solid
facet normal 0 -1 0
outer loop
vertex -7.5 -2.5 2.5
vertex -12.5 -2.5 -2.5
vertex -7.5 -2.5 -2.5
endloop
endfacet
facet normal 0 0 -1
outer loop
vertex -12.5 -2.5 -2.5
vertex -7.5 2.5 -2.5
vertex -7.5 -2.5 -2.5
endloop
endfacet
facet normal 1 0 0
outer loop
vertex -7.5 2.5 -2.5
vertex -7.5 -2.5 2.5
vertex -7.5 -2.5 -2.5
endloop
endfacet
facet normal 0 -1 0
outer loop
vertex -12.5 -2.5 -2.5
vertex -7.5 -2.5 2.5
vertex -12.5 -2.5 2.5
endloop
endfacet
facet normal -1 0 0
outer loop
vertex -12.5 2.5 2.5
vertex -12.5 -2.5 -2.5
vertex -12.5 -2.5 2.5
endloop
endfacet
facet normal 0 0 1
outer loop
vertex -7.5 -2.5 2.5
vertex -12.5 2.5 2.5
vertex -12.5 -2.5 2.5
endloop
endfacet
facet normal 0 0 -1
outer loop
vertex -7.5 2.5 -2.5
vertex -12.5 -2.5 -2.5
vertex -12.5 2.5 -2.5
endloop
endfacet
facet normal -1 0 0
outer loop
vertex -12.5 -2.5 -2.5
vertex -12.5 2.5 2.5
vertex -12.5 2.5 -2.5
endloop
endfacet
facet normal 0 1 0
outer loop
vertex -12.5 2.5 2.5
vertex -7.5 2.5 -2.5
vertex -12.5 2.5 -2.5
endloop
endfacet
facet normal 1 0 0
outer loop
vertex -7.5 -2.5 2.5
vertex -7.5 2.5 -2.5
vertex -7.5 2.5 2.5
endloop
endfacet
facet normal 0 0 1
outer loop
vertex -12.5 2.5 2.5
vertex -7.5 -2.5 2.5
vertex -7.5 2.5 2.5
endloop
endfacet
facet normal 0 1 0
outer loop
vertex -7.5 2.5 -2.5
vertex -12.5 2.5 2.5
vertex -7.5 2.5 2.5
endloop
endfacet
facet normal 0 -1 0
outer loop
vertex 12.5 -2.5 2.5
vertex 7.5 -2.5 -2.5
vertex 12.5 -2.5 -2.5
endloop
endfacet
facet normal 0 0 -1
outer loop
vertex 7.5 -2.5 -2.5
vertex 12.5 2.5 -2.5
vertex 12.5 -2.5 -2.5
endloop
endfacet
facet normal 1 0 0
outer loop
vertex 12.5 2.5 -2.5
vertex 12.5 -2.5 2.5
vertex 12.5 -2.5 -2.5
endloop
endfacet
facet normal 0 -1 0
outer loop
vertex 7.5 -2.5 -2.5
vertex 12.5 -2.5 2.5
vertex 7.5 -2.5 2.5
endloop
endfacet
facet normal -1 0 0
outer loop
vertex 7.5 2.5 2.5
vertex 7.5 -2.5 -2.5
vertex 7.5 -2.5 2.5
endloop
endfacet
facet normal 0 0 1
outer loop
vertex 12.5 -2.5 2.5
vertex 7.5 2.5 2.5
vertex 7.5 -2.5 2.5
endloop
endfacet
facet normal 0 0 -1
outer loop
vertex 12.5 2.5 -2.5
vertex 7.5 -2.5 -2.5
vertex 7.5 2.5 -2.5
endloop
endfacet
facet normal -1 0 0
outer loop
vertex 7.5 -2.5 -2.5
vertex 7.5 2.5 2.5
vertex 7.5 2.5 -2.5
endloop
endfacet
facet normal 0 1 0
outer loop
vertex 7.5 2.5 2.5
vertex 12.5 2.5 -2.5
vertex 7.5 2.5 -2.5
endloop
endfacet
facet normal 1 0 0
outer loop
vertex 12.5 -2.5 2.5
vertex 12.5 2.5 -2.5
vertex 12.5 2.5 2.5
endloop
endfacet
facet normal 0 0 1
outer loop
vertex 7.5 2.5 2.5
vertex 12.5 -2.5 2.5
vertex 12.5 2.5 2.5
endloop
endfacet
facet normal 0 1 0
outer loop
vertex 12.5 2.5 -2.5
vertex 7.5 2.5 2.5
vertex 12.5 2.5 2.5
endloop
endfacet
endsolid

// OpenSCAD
// Generated Multi-Component - Two separate cubes
// IMPORTANT: This requires a union() for OpenSCAD to render, 
// but Trimesh should detect them as separate bodies post-load.
union() {
    translate([-10,0,0]) cube([5,5,5], center=true);
    translate([10,0,0]) cube([5,5,5], center=true);
} 
